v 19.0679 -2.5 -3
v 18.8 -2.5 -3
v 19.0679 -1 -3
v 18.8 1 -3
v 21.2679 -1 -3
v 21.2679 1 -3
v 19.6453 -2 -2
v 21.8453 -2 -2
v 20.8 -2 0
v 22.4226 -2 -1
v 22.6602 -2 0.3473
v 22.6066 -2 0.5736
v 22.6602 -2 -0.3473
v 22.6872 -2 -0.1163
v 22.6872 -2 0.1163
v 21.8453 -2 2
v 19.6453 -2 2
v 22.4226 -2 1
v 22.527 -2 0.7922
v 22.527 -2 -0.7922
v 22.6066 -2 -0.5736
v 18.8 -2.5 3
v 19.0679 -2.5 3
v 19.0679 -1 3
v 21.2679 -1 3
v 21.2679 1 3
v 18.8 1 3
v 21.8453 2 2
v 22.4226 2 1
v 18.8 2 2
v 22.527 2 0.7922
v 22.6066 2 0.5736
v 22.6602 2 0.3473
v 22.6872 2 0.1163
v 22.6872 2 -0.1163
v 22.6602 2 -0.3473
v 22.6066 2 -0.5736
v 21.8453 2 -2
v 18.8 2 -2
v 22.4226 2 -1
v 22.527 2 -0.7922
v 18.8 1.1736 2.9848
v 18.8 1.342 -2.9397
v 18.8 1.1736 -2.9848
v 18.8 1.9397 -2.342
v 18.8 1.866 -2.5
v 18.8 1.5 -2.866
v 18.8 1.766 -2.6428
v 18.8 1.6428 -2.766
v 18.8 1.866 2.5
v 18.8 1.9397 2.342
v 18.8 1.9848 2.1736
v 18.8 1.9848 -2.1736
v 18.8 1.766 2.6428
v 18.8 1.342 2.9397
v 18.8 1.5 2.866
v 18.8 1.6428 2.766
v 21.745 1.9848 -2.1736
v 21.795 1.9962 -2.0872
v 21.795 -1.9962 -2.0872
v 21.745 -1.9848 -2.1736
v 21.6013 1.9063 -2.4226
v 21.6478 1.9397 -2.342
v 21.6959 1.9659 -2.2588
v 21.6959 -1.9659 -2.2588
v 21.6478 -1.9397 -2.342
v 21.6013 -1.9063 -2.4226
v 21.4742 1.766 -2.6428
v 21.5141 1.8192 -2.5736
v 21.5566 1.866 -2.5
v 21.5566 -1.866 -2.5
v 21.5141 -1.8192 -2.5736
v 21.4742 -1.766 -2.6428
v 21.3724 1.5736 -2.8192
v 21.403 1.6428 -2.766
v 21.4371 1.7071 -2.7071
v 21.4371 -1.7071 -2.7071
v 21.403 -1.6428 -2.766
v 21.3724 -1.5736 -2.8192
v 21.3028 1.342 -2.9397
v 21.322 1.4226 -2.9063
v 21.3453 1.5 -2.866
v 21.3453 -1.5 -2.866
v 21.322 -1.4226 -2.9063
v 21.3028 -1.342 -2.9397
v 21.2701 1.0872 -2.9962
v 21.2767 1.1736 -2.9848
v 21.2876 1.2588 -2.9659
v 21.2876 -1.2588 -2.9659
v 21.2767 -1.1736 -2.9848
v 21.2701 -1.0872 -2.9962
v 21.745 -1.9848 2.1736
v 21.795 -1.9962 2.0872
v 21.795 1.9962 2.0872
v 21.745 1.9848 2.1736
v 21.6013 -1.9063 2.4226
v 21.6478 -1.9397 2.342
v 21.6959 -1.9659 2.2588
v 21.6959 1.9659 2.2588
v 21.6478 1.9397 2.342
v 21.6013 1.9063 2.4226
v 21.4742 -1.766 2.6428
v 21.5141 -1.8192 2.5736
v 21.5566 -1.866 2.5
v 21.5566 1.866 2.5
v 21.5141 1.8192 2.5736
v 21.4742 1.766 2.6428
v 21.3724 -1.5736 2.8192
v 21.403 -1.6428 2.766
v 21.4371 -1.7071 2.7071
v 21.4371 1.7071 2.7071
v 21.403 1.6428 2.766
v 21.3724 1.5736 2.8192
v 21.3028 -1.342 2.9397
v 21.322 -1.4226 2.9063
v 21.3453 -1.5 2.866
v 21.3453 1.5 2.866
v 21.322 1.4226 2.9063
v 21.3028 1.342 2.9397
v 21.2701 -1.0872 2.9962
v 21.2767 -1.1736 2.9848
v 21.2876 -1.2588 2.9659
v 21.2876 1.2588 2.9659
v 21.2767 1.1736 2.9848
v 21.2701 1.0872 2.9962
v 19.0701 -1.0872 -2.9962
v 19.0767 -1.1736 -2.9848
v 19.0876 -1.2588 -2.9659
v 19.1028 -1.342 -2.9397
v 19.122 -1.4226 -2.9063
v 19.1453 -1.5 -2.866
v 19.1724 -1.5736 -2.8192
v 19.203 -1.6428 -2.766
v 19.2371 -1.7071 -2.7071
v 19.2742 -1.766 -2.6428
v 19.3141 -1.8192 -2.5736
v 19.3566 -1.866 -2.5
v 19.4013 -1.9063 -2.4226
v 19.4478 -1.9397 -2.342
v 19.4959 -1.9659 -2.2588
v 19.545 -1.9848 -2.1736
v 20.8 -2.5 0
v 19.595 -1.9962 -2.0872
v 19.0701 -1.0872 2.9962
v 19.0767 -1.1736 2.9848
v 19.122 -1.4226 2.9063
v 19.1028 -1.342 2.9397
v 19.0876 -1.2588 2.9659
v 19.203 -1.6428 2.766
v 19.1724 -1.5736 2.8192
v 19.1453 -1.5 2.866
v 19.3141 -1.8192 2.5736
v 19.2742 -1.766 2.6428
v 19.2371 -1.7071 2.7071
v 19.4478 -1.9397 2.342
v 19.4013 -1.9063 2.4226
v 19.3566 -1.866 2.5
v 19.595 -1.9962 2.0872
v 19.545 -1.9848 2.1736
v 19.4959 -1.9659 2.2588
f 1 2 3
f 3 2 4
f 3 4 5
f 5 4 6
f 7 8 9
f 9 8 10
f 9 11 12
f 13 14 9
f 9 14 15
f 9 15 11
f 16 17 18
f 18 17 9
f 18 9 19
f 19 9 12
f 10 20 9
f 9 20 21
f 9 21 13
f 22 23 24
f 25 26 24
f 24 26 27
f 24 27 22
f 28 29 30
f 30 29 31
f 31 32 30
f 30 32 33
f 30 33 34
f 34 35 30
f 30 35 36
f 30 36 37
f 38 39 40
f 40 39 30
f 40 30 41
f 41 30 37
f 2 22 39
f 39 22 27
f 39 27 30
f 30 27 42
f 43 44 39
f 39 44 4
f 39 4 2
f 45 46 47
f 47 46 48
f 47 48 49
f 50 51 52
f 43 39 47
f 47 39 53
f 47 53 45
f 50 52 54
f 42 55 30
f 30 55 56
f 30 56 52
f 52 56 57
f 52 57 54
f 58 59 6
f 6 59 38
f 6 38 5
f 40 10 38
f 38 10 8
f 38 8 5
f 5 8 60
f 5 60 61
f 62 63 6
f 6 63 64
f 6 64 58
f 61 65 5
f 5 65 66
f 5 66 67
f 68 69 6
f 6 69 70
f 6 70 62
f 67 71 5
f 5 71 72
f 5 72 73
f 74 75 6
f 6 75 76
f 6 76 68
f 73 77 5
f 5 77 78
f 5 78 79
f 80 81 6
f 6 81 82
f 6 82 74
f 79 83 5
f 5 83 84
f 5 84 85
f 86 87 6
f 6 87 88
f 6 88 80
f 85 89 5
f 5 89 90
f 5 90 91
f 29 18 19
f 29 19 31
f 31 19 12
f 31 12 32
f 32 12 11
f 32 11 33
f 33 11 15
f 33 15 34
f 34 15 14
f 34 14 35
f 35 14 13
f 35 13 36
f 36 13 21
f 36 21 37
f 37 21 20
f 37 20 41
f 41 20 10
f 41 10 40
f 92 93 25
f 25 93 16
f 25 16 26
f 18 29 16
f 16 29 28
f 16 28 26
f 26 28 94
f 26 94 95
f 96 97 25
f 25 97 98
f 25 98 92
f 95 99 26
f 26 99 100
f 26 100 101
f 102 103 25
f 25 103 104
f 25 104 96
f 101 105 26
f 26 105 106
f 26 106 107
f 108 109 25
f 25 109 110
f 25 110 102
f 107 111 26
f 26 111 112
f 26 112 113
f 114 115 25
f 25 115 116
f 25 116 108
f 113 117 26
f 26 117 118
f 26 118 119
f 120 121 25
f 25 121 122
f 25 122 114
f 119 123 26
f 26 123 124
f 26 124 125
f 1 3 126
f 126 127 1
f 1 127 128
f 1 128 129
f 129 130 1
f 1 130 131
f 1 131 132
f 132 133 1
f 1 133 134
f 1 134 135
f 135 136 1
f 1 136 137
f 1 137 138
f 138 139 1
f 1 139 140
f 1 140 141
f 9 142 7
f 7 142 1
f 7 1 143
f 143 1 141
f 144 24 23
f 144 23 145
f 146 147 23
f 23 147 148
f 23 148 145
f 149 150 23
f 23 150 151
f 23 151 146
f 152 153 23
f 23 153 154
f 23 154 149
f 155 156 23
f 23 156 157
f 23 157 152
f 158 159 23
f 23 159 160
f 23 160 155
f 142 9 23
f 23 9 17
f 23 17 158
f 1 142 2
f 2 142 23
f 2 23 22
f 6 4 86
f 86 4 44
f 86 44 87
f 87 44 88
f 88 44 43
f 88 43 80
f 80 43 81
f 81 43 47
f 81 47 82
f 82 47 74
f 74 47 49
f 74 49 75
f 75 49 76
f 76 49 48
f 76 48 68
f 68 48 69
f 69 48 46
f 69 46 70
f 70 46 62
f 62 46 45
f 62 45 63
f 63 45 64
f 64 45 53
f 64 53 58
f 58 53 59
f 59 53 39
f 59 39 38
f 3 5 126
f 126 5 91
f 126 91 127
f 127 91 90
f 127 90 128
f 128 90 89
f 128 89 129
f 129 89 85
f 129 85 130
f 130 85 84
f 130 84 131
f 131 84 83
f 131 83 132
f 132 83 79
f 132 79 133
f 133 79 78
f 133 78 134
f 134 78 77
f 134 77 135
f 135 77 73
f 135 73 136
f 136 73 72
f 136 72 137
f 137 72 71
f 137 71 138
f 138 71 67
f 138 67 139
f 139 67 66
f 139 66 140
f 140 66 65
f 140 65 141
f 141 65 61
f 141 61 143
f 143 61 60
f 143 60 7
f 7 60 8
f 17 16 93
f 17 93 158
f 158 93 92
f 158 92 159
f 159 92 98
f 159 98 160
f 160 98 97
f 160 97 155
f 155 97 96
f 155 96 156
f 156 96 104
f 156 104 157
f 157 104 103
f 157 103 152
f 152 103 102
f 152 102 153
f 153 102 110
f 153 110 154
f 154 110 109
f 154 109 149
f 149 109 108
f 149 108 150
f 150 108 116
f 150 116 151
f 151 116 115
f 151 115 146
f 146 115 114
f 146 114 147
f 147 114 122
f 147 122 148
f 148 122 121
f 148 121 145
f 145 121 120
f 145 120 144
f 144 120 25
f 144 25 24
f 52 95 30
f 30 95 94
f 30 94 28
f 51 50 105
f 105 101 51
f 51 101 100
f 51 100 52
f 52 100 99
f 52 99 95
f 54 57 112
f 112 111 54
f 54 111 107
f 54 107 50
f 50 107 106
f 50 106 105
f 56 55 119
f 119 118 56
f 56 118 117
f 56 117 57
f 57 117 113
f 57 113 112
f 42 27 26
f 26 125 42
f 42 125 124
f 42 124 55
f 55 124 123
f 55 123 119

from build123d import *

# Parameters (mm, degrees)
BOSS_EXTRUDE1_START      = 23
SKETCH1_W                = 6
SKETCH1_H                = 4
BOSS_EXTRUDE1_DEPTH      = 4.2
CUT_EXTRUDE1_DEPTH       = 24.280893454
CUT_EXTRUDE1_DEPTH_BACK  = 24.280893454
BOSS_EXTRUDE3_DEPTH      = 2
BOSS_EXTRUDE3_DEPTH_BACK = 2.5
FILLET2_R                = 1


with BuildPart() as part:
    # Sketch1 → Boss-Extrude1 (new body)
    with BuildSketch(Plane(origin=(0, 0, 0), x_dir=(0, 0, -1), z_dir=(1, 0, 0)).offset(BOSS_EXTRUDE1_START)):
        Rectangle(SKETCH1_W, SKETCH1_H)
    extrude(amount=-BOSS_EXTRUDE1_DEPTH)

    # Sketch2 → Cut-Extrude1 (cut, two sides)
    with BuildSketch(Plane(origin=(0, 0, 0), x_dir=(1, 0, 0), z_dir=(0, 1, 0))) as cut_extrude1_sk:
        with BuildLine():
            Line((22.422649731, 1), (11.5, 19.918584287))
            Line((11.5, 19.918584287), (23, 19.918584287))
            Line((23, 19.918584287), (23, -19.918584287))
            Line((23, -19.918584287), (11.5, -19.918584287))
            Line((11.5, -19.918584287), (22.422649731, -1))
            ThreePointArc((22.422649731, -1), (22.690598923, 0), (22.422649731, 1))
        make_face()
    extrude(amount=CUT_EXTRUDE1_DEPTH, mode=Mode.SUBTRACT)
    extrude(cut_extrude1_sk.sketch, amount=-CUT_EXTRUDE1_DEPTH_BACK, mode=Mode.SUBTRACT)

    # Sketch5 → Boss-Extrude3 (add, two sides)
    with BuildSketch(Plane(origin=(0, 0, 0), x_dir=(1, 0, 0), z_dir=(0, 1, 0))) as boss_extrude3_sk:
        Polygon((19.067949192, -3), (20.8, 0), (19.067949192, 3), (18.8, 3), (18.8, -3), align=None)
    extrude(amount=BOSS_EXTRUDE3_DEPTH)
    extrude(boss_extrude3_sk.sketch, amount=-BOSS_EXTRUDE3_DEPTH_BACK)

    # Fillet2
    fillet2_edges = [part.edges().sort_by_distance(p)[0] for p in [
        (20.167949192, -2, 3),
        (20.167949192, -2, -3),
        (20.033974596, 2, 3),
        (20.033974596, 2, -3),
    ]]
    fillet(fillet2_edges, radius=FILLET2_R)


solid = part.part
